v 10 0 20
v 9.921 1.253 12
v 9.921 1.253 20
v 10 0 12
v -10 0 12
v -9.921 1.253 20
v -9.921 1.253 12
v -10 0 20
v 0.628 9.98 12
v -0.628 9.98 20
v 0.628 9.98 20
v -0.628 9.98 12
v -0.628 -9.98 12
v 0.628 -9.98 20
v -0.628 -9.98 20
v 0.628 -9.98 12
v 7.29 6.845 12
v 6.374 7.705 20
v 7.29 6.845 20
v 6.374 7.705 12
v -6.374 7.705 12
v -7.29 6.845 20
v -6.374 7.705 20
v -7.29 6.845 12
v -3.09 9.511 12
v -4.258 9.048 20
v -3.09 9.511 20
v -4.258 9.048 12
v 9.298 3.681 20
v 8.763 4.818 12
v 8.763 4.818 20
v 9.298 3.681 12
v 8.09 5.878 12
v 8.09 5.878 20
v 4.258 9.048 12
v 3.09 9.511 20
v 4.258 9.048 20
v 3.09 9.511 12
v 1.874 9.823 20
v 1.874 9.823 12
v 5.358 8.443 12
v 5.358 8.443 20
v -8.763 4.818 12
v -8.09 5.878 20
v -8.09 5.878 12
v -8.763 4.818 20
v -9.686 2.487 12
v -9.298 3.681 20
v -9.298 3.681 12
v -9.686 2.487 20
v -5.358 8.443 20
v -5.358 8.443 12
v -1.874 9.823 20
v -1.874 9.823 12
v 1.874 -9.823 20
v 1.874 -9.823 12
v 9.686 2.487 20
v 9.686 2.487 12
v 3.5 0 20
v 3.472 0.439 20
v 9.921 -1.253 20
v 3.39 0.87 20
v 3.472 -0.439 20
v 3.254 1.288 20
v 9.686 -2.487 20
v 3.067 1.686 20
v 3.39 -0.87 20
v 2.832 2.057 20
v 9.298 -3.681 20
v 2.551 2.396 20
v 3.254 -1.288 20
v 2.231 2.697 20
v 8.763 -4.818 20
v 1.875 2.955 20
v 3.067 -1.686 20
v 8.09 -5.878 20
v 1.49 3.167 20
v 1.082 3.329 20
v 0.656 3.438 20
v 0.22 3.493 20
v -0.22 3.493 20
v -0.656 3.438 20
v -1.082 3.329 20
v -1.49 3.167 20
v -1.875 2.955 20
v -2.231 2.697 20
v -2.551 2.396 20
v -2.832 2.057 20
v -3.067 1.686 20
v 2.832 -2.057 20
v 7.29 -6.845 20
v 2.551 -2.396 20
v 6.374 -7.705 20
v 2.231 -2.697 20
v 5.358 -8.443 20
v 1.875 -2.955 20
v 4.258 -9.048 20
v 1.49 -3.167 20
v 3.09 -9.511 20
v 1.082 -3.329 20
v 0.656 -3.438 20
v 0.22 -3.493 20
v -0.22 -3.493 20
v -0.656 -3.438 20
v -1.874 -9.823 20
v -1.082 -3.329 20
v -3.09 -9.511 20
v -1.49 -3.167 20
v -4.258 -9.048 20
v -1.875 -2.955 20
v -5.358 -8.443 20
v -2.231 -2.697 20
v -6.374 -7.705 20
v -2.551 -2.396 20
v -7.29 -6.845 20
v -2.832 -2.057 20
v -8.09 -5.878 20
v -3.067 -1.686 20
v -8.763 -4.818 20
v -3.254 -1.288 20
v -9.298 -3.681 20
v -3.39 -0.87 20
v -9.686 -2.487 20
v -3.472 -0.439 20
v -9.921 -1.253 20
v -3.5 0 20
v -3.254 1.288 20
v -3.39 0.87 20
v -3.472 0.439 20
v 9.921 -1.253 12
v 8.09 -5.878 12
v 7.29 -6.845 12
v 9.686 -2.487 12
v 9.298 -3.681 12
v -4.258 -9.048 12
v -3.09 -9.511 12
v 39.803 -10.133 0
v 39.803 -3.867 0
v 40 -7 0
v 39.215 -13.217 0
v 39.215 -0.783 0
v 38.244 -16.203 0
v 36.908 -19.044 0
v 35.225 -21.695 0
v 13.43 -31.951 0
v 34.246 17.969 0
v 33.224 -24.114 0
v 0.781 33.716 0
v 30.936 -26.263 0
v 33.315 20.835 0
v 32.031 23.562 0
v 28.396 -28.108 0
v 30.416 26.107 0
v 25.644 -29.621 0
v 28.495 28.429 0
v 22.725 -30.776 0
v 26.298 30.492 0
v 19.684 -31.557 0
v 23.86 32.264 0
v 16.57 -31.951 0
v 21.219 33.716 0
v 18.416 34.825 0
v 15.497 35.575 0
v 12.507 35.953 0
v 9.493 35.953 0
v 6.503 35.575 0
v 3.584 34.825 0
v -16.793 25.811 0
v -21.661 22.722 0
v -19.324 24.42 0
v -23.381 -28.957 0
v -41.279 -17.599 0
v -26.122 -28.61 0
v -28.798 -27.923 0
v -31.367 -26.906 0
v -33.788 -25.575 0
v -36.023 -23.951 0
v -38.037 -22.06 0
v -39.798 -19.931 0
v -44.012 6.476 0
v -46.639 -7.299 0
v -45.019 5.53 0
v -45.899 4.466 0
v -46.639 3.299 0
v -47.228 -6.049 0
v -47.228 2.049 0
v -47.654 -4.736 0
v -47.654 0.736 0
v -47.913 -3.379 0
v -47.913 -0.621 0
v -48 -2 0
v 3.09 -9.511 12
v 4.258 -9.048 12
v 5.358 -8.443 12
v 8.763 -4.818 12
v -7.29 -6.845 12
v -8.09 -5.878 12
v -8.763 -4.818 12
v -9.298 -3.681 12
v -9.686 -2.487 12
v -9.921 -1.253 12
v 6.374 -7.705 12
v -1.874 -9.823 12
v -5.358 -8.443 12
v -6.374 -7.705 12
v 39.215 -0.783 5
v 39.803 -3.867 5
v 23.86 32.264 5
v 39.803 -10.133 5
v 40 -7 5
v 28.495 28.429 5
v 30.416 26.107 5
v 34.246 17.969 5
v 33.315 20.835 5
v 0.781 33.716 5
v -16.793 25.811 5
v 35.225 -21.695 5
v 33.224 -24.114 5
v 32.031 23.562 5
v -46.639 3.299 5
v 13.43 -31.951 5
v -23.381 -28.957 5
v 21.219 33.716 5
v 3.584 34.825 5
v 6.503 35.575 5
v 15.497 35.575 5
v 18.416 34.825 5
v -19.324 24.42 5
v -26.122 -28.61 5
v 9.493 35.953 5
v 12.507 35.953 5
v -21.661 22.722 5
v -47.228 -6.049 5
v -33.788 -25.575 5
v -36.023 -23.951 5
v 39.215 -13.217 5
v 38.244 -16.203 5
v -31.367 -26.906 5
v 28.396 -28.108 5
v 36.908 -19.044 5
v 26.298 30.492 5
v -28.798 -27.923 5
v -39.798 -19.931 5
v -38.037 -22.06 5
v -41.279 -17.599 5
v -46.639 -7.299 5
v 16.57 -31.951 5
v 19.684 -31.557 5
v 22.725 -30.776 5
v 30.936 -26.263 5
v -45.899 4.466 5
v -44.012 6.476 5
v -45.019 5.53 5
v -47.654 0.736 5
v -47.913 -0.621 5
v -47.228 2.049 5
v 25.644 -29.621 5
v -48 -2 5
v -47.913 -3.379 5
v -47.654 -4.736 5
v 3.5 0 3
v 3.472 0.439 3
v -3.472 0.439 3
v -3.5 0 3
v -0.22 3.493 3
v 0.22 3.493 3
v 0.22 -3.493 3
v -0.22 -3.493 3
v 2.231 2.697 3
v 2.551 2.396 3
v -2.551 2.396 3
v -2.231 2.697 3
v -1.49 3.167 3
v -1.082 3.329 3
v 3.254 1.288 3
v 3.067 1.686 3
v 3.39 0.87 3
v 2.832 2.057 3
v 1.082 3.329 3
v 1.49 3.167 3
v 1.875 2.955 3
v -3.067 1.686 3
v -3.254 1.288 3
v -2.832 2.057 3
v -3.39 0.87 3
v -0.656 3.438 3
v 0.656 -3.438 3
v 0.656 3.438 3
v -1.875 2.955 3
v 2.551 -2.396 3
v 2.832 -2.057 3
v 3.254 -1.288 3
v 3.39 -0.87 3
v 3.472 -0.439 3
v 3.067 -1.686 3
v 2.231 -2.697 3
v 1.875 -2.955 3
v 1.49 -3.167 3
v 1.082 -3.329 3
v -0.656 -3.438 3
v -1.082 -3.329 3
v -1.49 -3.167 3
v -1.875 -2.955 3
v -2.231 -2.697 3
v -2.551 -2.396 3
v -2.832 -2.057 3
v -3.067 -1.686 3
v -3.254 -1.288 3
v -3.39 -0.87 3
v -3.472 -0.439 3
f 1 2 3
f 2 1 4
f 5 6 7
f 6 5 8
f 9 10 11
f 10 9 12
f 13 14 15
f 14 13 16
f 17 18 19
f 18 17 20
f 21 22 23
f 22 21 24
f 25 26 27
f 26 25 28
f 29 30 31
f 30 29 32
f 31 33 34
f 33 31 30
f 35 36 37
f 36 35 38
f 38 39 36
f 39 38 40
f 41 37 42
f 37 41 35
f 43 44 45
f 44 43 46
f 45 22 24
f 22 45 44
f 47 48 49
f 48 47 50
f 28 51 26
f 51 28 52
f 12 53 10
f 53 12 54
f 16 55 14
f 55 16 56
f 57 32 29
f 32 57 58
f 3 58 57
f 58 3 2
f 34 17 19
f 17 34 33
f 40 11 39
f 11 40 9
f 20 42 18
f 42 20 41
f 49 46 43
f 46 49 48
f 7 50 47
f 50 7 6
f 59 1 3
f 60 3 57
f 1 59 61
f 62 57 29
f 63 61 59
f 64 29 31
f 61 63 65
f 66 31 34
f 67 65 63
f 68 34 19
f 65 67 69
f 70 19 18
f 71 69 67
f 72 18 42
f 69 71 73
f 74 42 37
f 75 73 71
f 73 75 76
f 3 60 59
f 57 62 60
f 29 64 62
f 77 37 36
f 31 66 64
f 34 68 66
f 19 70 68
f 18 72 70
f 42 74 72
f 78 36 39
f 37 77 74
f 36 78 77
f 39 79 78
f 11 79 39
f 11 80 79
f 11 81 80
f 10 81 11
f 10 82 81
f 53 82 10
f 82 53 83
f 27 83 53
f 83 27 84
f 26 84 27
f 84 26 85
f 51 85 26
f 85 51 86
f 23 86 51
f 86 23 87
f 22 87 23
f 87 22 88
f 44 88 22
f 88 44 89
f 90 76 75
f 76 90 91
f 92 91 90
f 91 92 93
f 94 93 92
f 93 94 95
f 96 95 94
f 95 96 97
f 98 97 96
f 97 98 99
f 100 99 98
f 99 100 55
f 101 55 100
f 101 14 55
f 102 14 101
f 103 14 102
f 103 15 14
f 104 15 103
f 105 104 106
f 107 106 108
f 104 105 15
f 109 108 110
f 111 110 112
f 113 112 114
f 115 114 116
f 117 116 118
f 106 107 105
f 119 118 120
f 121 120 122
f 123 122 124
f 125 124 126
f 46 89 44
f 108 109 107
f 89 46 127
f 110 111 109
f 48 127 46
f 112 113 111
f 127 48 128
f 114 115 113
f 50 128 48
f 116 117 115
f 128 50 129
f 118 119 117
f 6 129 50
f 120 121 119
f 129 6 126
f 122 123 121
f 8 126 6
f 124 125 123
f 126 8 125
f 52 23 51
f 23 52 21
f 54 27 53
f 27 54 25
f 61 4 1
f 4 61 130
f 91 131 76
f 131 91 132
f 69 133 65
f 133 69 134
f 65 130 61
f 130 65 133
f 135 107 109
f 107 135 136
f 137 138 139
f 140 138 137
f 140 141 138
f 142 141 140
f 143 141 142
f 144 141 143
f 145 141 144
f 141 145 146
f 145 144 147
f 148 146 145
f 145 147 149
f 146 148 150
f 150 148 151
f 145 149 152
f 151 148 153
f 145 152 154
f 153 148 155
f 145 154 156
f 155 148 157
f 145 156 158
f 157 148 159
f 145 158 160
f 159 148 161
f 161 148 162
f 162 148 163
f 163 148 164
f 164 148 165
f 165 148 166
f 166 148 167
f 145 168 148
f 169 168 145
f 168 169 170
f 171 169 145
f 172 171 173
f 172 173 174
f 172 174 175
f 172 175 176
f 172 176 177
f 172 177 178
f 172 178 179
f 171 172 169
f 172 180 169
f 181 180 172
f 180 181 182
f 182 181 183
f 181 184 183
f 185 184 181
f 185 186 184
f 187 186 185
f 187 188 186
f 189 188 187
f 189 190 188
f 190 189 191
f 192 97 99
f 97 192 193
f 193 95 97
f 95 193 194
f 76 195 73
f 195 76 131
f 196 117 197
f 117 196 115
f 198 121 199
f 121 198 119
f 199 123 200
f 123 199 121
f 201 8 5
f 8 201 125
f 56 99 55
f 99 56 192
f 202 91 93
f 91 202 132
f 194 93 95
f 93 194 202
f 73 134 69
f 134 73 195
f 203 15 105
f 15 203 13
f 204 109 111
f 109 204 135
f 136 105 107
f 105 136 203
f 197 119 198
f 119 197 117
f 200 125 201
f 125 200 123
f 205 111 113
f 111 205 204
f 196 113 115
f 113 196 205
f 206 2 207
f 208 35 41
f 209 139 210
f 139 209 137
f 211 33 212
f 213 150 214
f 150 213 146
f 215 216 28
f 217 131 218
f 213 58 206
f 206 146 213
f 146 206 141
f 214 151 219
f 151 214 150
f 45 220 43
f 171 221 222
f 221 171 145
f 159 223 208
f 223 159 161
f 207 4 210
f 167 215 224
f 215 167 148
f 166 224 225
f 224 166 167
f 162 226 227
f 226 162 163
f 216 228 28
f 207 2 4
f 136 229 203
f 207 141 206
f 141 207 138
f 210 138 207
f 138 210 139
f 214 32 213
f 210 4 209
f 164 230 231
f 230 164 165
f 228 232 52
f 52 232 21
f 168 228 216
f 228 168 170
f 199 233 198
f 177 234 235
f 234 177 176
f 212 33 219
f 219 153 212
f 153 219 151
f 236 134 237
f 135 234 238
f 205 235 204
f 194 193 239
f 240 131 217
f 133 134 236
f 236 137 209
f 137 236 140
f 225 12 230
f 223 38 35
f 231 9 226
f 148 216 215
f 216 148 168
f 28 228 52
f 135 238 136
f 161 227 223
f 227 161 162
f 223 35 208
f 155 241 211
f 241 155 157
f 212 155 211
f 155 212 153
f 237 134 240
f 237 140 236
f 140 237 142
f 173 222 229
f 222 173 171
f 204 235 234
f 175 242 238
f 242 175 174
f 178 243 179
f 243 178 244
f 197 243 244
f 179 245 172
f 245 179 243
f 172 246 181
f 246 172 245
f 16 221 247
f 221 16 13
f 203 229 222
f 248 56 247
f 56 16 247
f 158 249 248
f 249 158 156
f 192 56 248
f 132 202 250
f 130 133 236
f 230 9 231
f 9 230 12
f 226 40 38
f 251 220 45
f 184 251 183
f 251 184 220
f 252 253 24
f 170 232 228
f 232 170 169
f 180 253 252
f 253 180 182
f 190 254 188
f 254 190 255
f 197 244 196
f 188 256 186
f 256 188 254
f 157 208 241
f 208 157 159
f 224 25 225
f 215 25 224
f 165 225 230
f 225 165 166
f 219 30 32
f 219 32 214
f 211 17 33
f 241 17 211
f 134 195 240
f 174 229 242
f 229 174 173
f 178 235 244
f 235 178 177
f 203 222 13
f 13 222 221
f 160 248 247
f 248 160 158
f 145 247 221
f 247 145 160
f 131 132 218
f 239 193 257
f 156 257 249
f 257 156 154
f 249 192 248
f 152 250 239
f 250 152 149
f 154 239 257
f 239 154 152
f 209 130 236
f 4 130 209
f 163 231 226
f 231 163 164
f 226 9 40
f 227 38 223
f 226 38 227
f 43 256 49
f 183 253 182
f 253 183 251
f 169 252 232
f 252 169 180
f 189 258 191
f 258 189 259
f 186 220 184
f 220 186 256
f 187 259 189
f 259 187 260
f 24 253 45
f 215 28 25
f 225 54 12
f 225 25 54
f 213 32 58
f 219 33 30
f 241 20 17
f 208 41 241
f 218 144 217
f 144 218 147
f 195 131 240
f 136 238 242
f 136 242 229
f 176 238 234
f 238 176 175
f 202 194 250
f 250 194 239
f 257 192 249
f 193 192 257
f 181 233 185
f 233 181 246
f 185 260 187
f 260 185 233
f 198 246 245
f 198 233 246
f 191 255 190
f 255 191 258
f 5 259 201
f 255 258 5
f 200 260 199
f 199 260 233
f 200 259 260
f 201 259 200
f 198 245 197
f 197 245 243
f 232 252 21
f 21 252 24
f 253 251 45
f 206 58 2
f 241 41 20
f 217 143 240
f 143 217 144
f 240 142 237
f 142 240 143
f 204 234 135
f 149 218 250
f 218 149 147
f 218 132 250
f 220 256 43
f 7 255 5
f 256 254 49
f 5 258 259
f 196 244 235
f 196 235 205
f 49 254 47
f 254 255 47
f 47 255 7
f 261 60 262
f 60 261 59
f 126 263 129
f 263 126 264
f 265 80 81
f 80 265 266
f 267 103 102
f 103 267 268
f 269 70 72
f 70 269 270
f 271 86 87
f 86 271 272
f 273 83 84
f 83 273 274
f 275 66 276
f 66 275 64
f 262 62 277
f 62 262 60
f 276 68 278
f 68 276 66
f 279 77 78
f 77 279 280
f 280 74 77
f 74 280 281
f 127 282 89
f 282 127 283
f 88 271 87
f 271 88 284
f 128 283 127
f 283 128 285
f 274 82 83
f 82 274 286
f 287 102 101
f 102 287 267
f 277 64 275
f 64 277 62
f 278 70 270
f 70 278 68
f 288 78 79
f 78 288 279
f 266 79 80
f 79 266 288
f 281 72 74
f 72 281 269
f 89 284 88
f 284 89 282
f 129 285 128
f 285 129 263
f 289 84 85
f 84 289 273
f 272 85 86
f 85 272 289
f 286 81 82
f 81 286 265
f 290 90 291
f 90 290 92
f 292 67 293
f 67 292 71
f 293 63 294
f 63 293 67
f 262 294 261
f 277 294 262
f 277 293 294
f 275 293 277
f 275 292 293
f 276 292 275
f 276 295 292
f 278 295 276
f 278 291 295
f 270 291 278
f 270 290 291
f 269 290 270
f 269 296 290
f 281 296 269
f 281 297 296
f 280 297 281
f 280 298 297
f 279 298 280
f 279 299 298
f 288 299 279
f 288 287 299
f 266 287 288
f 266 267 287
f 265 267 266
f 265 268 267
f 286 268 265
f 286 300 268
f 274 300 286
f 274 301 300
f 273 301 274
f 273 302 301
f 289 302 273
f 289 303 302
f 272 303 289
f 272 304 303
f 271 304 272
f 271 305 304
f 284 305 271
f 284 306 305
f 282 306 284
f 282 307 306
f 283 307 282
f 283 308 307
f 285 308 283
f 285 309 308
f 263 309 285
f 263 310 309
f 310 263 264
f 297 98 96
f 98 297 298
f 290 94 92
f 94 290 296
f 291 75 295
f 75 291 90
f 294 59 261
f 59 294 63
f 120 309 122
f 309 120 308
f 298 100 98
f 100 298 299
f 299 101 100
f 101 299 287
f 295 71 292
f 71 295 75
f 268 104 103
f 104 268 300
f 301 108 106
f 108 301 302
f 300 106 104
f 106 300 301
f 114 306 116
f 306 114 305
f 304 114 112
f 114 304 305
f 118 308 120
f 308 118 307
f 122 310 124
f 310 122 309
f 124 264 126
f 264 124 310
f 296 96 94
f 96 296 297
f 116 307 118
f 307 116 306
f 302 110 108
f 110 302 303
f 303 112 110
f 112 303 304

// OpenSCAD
$fn = 50;

difference() {
   union() {
      cylinder(r=10,h=20);
      hull() {
         cylinder(r=10,h=12);
         translate([-3,0,0]) form();
      }
   }
   translate([0,0,3]) cylinder(d=7,h=30);
}


module form() {
   linear_extrude(height=5) hull() {
      translate([-4,5,0]) circle(r=23);
      translate([-19,-7,0]) circle(r=22);
      translate([-34,-2,0]) circle(r=11);
      translate([18,-7,0]) circle(r=25);
      translate([14,12,0]) circle(r=24);
   }
}
